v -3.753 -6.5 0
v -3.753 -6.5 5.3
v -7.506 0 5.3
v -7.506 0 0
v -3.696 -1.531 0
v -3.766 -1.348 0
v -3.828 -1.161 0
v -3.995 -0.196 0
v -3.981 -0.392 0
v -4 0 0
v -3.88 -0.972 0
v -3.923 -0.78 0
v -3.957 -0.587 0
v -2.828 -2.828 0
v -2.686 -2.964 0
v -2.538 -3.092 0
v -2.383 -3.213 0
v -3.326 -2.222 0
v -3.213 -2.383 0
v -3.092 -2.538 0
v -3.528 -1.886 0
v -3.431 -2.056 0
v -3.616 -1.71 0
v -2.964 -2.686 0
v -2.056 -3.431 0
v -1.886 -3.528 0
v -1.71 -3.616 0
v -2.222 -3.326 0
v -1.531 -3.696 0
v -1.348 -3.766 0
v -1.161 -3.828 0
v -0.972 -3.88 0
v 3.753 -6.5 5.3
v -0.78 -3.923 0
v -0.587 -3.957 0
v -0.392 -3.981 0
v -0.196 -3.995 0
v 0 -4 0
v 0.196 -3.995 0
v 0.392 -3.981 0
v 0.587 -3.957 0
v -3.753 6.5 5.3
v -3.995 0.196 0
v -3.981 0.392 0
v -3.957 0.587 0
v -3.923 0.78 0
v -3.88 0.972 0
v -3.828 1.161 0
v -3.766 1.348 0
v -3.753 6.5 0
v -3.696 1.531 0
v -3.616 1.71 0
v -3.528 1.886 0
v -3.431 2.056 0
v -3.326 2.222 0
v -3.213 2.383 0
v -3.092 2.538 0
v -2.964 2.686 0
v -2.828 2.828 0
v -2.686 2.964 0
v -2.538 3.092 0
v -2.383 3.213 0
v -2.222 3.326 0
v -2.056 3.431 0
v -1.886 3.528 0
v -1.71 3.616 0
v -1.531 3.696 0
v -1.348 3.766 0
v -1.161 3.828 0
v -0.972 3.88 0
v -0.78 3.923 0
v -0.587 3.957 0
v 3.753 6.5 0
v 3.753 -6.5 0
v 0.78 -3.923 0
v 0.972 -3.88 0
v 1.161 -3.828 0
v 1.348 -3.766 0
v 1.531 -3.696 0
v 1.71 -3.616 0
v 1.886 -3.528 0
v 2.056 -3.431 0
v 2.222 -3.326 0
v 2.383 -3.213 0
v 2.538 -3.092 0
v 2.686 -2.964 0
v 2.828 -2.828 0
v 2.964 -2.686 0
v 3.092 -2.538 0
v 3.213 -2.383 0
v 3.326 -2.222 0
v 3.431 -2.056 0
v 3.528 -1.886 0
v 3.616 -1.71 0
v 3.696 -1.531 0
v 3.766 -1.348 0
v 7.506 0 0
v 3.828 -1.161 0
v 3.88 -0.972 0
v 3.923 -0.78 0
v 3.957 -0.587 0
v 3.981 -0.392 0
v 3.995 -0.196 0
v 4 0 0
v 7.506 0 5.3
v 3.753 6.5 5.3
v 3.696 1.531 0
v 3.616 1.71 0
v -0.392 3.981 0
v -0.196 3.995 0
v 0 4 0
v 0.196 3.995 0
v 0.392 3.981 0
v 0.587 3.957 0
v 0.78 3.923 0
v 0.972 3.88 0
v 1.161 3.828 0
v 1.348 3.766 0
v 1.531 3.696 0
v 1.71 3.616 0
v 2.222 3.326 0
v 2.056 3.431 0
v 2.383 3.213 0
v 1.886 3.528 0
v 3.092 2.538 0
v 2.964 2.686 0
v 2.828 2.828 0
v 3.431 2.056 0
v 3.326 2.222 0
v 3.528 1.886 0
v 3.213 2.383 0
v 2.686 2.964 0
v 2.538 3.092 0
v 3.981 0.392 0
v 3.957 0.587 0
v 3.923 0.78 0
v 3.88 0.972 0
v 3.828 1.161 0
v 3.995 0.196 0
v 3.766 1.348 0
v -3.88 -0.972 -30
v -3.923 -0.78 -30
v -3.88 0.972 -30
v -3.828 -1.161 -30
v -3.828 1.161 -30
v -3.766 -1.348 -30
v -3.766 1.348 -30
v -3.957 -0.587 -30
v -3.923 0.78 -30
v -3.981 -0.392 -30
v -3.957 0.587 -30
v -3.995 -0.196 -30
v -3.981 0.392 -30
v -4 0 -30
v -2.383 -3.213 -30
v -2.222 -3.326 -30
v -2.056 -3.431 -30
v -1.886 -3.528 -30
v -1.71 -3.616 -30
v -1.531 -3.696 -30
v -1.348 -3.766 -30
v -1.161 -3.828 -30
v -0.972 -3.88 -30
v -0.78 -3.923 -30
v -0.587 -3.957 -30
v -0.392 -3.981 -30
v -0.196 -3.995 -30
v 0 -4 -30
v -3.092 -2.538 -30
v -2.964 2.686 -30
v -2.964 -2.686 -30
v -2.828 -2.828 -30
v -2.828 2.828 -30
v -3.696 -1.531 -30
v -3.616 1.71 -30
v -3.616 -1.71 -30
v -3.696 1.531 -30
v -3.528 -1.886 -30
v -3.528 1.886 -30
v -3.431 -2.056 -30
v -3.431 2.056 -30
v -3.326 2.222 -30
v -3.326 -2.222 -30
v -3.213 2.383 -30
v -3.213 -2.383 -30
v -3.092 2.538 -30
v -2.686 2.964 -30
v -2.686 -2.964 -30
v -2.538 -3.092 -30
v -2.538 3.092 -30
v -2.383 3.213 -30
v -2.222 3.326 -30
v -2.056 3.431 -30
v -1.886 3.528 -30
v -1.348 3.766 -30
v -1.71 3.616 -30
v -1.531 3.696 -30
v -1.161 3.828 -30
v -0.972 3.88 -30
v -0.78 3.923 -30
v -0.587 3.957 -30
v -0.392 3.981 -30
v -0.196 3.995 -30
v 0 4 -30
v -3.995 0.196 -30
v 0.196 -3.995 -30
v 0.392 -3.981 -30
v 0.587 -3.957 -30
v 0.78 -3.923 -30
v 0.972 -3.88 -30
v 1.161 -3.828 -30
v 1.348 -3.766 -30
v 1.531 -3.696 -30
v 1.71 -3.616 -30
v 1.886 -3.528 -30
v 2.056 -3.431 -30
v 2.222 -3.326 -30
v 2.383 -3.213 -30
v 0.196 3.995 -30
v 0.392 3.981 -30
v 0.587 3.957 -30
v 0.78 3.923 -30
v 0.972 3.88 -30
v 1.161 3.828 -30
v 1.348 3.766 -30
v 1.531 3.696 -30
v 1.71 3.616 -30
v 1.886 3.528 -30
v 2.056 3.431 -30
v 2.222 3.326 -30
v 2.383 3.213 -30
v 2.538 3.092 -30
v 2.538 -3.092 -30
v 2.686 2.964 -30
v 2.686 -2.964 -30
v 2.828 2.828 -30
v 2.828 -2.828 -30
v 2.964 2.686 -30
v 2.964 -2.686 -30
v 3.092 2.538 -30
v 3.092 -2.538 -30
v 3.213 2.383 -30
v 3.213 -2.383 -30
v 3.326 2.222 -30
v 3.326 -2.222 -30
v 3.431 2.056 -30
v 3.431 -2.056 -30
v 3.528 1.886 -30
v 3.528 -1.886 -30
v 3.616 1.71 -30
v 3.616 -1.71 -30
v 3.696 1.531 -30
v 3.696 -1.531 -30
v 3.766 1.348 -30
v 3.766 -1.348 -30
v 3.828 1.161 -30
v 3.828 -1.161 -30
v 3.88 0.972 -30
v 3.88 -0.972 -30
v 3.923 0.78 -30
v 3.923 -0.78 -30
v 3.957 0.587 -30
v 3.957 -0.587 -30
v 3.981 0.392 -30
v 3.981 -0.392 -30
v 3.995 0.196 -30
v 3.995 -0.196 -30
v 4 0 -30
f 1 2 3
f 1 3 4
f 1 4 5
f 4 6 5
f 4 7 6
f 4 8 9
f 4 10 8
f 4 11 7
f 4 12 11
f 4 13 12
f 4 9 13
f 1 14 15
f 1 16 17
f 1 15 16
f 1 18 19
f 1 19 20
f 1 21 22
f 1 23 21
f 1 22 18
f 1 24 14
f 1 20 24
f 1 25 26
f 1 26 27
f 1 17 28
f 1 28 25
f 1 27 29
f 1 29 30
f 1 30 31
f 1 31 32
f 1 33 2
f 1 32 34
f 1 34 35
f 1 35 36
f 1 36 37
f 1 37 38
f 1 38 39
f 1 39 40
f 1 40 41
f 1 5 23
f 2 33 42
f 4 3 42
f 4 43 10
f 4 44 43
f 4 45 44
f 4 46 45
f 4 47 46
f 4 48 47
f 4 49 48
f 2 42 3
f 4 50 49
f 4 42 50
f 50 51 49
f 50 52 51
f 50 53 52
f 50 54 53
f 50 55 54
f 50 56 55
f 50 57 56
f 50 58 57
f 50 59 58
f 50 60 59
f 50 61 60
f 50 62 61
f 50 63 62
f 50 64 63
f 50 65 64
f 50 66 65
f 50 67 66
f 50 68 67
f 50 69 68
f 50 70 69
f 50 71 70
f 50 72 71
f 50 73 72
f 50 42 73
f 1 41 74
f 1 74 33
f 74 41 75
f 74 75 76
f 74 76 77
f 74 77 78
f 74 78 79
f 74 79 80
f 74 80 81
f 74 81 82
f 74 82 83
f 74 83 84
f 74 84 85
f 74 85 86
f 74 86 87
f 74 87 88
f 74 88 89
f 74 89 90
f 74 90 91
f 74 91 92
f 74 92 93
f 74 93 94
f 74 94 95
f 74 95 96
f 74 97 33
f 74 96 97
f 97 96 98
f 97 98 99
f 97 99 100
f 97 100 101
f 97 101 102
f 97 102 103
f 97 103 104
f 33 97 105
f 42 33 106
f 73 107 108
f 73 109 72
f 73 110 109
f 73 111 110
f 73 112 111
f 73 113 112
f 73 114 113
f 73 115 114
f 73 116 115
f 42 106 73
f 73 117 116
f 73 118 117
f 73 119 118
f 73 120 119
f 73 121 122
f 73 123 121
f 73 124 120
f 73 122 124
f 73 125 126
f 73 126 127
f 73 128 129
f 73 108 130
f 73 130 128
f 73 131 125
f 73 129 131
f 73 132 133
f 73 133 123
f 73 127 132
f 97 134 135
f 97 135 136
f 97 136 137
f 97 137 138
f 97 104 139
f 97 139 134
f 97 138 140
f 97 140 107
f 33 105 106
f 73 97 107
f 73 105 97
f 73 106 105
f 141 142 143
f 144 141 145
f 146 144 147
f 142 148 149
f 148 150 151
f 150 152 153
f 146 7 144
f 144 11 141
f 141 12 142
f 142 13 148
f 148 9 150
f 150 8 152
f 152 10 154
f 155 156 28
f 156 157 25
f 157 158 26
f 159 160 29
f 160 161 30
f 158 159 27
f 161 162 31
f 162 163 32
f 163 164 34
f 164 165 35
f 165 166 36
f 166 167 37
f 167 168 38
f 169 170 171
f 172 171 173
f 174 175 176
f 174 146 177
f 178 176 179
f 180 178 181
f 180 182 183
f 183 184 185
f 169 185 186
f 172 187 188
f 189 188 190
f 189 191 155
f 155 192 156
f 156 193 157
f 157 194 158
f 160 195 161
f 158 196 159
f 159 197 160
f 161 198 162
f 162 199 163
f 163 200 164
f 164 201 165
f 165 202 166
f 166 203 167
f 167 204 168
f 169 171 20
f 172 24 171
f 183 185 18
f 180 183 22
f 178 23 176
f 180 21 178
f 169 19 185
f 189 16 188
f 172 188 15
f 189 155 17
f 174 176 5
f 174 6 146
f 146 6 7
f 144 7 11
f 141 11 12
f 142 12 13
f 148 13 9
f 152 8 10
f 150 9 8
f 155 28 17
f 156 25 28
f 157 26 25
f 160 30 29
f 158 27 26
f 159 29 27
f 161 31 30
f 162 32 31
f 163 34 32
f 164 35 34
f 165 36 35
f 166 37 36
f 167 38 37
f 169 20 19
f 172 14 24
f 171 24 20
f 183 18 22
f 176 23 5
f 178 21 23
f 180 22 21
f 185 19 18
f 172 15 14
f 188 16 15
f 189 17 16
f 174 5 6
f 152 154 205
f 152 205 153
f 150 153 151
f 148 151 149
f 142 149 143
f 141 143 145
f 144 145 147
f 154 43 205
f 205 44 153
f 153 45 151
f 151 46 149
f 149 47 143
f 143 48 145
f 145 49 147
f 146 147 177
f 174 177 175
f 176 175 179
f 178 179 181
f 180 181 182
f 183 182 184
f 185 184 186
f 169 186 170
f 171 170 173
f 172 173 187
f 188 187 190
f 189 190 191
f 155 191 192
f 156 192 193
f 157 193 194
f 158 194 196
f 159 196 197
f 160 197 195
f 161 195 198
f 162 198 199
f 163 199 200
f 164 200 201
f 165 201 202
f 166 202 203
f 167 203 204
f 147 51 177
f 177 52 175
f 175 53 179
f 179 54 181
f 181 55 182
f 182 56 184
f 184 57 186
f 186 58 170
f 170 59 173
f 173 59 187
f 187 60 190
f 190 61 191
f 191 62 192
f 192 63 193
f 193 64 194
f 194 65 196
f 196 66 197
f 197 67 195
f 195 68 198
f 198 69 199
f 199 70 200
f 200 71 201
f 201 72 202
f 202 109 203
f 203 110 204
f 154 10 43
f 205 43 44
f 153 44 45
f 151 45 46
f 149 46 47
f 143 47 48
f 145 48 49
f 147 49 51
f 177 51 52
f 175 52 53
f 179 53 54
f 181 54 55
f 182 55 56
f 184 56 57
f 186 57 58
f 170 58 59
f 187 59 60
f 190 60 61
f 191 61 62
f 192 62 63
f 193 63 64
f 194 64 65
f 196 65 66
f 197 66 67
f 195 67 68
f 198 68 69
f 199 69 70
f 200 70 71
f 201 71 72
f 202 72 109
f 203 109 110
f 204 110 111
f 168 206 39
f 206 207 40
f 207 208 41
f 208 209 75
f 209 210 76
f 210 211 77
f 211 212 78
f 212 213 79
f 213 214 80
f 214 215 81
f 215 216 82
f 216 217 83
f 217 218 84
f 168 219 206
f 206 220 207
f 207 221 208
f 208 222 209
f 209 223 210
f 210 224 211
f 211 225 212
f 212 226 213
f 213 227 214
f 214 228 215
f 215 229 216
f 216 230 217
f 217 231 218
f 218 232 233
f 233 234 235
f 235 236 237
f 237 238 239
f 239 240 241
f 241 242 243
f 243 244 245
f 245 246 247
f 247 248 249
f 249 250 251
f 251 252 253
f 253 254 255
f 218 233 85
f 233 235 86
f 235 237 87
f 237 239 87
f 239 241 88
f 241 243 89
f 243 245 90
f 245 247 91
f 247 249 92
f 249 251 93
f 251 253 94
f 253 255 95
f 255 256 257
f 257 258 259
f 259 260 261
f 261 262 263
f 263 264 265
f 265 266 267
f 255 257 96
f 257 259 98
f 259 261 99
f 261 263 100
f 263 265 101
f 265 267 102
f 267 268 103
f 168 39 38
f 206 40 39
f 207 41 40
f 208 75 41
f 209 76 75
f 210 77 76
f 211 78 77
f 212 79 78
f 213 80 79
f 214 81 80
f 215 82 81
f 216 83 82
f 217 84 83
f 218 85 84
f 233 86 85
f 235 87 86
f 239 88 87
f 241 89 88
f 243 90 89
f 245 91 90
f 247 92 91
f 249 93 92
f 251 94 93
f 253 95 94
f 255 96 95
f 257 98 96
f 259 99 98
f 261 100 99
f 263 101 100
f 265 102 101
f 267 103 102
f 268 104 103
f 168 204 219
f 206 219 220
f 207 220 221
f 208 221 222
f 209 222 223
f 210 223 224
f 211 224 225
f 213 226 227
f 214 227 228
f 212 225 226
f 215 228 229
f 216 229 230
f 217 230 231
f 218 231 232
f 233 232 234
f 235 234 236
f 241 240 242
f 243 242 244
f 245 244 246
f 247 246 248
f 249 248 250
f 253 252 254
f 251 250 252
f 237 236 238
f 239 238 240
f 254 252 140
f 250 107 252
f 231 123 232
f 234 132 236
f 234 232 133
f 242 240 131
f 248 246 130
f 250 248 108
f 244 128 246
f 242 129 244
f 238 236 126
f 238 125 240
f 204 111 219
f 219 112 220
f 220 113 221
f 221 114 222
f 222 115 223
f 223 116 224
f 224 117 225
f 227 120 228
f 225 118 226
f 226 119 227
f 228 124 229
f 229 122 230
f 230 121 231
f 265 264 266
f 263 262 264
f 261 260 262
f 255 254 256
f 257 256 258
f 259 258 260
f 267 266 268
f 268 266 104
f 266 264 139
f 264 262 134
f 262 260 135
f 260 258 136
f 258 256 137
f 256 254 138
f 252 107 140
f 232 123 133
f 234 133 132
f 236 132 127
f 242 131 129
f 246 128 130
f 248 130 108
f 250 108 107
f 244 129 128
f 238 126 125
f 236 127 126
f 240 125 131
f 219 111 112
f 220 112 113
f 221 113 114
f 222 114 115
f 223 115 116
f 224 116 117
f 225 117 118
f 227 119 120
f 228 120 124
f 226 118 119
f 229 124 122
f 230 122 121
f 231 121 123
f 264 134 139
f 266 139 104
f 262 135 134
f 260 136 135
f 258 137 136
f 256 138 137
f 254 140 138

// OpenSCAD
// Parameters
af = 13;          // across-flats for hex head (mm)
head_h = 5.3;     // head height (mm)
shank_d = 8;      // shank diameter (mm)
shank_h = 30;     // shank length (mm)

// Derived
head_d_corners = af * 2 / sqrt(3); // diameter across corners for hex

union() {
  // Hex head: base at z=0, extends to +Z
  cylinder(h = head_h, d = head_d_corners, $fn = 6);

  // Shank: extends from z=-shank_h to z=0
  translate([0,0,-shank_h])
    cylinder(h = shank_h, d = shank_d, $fn = 128);
}
